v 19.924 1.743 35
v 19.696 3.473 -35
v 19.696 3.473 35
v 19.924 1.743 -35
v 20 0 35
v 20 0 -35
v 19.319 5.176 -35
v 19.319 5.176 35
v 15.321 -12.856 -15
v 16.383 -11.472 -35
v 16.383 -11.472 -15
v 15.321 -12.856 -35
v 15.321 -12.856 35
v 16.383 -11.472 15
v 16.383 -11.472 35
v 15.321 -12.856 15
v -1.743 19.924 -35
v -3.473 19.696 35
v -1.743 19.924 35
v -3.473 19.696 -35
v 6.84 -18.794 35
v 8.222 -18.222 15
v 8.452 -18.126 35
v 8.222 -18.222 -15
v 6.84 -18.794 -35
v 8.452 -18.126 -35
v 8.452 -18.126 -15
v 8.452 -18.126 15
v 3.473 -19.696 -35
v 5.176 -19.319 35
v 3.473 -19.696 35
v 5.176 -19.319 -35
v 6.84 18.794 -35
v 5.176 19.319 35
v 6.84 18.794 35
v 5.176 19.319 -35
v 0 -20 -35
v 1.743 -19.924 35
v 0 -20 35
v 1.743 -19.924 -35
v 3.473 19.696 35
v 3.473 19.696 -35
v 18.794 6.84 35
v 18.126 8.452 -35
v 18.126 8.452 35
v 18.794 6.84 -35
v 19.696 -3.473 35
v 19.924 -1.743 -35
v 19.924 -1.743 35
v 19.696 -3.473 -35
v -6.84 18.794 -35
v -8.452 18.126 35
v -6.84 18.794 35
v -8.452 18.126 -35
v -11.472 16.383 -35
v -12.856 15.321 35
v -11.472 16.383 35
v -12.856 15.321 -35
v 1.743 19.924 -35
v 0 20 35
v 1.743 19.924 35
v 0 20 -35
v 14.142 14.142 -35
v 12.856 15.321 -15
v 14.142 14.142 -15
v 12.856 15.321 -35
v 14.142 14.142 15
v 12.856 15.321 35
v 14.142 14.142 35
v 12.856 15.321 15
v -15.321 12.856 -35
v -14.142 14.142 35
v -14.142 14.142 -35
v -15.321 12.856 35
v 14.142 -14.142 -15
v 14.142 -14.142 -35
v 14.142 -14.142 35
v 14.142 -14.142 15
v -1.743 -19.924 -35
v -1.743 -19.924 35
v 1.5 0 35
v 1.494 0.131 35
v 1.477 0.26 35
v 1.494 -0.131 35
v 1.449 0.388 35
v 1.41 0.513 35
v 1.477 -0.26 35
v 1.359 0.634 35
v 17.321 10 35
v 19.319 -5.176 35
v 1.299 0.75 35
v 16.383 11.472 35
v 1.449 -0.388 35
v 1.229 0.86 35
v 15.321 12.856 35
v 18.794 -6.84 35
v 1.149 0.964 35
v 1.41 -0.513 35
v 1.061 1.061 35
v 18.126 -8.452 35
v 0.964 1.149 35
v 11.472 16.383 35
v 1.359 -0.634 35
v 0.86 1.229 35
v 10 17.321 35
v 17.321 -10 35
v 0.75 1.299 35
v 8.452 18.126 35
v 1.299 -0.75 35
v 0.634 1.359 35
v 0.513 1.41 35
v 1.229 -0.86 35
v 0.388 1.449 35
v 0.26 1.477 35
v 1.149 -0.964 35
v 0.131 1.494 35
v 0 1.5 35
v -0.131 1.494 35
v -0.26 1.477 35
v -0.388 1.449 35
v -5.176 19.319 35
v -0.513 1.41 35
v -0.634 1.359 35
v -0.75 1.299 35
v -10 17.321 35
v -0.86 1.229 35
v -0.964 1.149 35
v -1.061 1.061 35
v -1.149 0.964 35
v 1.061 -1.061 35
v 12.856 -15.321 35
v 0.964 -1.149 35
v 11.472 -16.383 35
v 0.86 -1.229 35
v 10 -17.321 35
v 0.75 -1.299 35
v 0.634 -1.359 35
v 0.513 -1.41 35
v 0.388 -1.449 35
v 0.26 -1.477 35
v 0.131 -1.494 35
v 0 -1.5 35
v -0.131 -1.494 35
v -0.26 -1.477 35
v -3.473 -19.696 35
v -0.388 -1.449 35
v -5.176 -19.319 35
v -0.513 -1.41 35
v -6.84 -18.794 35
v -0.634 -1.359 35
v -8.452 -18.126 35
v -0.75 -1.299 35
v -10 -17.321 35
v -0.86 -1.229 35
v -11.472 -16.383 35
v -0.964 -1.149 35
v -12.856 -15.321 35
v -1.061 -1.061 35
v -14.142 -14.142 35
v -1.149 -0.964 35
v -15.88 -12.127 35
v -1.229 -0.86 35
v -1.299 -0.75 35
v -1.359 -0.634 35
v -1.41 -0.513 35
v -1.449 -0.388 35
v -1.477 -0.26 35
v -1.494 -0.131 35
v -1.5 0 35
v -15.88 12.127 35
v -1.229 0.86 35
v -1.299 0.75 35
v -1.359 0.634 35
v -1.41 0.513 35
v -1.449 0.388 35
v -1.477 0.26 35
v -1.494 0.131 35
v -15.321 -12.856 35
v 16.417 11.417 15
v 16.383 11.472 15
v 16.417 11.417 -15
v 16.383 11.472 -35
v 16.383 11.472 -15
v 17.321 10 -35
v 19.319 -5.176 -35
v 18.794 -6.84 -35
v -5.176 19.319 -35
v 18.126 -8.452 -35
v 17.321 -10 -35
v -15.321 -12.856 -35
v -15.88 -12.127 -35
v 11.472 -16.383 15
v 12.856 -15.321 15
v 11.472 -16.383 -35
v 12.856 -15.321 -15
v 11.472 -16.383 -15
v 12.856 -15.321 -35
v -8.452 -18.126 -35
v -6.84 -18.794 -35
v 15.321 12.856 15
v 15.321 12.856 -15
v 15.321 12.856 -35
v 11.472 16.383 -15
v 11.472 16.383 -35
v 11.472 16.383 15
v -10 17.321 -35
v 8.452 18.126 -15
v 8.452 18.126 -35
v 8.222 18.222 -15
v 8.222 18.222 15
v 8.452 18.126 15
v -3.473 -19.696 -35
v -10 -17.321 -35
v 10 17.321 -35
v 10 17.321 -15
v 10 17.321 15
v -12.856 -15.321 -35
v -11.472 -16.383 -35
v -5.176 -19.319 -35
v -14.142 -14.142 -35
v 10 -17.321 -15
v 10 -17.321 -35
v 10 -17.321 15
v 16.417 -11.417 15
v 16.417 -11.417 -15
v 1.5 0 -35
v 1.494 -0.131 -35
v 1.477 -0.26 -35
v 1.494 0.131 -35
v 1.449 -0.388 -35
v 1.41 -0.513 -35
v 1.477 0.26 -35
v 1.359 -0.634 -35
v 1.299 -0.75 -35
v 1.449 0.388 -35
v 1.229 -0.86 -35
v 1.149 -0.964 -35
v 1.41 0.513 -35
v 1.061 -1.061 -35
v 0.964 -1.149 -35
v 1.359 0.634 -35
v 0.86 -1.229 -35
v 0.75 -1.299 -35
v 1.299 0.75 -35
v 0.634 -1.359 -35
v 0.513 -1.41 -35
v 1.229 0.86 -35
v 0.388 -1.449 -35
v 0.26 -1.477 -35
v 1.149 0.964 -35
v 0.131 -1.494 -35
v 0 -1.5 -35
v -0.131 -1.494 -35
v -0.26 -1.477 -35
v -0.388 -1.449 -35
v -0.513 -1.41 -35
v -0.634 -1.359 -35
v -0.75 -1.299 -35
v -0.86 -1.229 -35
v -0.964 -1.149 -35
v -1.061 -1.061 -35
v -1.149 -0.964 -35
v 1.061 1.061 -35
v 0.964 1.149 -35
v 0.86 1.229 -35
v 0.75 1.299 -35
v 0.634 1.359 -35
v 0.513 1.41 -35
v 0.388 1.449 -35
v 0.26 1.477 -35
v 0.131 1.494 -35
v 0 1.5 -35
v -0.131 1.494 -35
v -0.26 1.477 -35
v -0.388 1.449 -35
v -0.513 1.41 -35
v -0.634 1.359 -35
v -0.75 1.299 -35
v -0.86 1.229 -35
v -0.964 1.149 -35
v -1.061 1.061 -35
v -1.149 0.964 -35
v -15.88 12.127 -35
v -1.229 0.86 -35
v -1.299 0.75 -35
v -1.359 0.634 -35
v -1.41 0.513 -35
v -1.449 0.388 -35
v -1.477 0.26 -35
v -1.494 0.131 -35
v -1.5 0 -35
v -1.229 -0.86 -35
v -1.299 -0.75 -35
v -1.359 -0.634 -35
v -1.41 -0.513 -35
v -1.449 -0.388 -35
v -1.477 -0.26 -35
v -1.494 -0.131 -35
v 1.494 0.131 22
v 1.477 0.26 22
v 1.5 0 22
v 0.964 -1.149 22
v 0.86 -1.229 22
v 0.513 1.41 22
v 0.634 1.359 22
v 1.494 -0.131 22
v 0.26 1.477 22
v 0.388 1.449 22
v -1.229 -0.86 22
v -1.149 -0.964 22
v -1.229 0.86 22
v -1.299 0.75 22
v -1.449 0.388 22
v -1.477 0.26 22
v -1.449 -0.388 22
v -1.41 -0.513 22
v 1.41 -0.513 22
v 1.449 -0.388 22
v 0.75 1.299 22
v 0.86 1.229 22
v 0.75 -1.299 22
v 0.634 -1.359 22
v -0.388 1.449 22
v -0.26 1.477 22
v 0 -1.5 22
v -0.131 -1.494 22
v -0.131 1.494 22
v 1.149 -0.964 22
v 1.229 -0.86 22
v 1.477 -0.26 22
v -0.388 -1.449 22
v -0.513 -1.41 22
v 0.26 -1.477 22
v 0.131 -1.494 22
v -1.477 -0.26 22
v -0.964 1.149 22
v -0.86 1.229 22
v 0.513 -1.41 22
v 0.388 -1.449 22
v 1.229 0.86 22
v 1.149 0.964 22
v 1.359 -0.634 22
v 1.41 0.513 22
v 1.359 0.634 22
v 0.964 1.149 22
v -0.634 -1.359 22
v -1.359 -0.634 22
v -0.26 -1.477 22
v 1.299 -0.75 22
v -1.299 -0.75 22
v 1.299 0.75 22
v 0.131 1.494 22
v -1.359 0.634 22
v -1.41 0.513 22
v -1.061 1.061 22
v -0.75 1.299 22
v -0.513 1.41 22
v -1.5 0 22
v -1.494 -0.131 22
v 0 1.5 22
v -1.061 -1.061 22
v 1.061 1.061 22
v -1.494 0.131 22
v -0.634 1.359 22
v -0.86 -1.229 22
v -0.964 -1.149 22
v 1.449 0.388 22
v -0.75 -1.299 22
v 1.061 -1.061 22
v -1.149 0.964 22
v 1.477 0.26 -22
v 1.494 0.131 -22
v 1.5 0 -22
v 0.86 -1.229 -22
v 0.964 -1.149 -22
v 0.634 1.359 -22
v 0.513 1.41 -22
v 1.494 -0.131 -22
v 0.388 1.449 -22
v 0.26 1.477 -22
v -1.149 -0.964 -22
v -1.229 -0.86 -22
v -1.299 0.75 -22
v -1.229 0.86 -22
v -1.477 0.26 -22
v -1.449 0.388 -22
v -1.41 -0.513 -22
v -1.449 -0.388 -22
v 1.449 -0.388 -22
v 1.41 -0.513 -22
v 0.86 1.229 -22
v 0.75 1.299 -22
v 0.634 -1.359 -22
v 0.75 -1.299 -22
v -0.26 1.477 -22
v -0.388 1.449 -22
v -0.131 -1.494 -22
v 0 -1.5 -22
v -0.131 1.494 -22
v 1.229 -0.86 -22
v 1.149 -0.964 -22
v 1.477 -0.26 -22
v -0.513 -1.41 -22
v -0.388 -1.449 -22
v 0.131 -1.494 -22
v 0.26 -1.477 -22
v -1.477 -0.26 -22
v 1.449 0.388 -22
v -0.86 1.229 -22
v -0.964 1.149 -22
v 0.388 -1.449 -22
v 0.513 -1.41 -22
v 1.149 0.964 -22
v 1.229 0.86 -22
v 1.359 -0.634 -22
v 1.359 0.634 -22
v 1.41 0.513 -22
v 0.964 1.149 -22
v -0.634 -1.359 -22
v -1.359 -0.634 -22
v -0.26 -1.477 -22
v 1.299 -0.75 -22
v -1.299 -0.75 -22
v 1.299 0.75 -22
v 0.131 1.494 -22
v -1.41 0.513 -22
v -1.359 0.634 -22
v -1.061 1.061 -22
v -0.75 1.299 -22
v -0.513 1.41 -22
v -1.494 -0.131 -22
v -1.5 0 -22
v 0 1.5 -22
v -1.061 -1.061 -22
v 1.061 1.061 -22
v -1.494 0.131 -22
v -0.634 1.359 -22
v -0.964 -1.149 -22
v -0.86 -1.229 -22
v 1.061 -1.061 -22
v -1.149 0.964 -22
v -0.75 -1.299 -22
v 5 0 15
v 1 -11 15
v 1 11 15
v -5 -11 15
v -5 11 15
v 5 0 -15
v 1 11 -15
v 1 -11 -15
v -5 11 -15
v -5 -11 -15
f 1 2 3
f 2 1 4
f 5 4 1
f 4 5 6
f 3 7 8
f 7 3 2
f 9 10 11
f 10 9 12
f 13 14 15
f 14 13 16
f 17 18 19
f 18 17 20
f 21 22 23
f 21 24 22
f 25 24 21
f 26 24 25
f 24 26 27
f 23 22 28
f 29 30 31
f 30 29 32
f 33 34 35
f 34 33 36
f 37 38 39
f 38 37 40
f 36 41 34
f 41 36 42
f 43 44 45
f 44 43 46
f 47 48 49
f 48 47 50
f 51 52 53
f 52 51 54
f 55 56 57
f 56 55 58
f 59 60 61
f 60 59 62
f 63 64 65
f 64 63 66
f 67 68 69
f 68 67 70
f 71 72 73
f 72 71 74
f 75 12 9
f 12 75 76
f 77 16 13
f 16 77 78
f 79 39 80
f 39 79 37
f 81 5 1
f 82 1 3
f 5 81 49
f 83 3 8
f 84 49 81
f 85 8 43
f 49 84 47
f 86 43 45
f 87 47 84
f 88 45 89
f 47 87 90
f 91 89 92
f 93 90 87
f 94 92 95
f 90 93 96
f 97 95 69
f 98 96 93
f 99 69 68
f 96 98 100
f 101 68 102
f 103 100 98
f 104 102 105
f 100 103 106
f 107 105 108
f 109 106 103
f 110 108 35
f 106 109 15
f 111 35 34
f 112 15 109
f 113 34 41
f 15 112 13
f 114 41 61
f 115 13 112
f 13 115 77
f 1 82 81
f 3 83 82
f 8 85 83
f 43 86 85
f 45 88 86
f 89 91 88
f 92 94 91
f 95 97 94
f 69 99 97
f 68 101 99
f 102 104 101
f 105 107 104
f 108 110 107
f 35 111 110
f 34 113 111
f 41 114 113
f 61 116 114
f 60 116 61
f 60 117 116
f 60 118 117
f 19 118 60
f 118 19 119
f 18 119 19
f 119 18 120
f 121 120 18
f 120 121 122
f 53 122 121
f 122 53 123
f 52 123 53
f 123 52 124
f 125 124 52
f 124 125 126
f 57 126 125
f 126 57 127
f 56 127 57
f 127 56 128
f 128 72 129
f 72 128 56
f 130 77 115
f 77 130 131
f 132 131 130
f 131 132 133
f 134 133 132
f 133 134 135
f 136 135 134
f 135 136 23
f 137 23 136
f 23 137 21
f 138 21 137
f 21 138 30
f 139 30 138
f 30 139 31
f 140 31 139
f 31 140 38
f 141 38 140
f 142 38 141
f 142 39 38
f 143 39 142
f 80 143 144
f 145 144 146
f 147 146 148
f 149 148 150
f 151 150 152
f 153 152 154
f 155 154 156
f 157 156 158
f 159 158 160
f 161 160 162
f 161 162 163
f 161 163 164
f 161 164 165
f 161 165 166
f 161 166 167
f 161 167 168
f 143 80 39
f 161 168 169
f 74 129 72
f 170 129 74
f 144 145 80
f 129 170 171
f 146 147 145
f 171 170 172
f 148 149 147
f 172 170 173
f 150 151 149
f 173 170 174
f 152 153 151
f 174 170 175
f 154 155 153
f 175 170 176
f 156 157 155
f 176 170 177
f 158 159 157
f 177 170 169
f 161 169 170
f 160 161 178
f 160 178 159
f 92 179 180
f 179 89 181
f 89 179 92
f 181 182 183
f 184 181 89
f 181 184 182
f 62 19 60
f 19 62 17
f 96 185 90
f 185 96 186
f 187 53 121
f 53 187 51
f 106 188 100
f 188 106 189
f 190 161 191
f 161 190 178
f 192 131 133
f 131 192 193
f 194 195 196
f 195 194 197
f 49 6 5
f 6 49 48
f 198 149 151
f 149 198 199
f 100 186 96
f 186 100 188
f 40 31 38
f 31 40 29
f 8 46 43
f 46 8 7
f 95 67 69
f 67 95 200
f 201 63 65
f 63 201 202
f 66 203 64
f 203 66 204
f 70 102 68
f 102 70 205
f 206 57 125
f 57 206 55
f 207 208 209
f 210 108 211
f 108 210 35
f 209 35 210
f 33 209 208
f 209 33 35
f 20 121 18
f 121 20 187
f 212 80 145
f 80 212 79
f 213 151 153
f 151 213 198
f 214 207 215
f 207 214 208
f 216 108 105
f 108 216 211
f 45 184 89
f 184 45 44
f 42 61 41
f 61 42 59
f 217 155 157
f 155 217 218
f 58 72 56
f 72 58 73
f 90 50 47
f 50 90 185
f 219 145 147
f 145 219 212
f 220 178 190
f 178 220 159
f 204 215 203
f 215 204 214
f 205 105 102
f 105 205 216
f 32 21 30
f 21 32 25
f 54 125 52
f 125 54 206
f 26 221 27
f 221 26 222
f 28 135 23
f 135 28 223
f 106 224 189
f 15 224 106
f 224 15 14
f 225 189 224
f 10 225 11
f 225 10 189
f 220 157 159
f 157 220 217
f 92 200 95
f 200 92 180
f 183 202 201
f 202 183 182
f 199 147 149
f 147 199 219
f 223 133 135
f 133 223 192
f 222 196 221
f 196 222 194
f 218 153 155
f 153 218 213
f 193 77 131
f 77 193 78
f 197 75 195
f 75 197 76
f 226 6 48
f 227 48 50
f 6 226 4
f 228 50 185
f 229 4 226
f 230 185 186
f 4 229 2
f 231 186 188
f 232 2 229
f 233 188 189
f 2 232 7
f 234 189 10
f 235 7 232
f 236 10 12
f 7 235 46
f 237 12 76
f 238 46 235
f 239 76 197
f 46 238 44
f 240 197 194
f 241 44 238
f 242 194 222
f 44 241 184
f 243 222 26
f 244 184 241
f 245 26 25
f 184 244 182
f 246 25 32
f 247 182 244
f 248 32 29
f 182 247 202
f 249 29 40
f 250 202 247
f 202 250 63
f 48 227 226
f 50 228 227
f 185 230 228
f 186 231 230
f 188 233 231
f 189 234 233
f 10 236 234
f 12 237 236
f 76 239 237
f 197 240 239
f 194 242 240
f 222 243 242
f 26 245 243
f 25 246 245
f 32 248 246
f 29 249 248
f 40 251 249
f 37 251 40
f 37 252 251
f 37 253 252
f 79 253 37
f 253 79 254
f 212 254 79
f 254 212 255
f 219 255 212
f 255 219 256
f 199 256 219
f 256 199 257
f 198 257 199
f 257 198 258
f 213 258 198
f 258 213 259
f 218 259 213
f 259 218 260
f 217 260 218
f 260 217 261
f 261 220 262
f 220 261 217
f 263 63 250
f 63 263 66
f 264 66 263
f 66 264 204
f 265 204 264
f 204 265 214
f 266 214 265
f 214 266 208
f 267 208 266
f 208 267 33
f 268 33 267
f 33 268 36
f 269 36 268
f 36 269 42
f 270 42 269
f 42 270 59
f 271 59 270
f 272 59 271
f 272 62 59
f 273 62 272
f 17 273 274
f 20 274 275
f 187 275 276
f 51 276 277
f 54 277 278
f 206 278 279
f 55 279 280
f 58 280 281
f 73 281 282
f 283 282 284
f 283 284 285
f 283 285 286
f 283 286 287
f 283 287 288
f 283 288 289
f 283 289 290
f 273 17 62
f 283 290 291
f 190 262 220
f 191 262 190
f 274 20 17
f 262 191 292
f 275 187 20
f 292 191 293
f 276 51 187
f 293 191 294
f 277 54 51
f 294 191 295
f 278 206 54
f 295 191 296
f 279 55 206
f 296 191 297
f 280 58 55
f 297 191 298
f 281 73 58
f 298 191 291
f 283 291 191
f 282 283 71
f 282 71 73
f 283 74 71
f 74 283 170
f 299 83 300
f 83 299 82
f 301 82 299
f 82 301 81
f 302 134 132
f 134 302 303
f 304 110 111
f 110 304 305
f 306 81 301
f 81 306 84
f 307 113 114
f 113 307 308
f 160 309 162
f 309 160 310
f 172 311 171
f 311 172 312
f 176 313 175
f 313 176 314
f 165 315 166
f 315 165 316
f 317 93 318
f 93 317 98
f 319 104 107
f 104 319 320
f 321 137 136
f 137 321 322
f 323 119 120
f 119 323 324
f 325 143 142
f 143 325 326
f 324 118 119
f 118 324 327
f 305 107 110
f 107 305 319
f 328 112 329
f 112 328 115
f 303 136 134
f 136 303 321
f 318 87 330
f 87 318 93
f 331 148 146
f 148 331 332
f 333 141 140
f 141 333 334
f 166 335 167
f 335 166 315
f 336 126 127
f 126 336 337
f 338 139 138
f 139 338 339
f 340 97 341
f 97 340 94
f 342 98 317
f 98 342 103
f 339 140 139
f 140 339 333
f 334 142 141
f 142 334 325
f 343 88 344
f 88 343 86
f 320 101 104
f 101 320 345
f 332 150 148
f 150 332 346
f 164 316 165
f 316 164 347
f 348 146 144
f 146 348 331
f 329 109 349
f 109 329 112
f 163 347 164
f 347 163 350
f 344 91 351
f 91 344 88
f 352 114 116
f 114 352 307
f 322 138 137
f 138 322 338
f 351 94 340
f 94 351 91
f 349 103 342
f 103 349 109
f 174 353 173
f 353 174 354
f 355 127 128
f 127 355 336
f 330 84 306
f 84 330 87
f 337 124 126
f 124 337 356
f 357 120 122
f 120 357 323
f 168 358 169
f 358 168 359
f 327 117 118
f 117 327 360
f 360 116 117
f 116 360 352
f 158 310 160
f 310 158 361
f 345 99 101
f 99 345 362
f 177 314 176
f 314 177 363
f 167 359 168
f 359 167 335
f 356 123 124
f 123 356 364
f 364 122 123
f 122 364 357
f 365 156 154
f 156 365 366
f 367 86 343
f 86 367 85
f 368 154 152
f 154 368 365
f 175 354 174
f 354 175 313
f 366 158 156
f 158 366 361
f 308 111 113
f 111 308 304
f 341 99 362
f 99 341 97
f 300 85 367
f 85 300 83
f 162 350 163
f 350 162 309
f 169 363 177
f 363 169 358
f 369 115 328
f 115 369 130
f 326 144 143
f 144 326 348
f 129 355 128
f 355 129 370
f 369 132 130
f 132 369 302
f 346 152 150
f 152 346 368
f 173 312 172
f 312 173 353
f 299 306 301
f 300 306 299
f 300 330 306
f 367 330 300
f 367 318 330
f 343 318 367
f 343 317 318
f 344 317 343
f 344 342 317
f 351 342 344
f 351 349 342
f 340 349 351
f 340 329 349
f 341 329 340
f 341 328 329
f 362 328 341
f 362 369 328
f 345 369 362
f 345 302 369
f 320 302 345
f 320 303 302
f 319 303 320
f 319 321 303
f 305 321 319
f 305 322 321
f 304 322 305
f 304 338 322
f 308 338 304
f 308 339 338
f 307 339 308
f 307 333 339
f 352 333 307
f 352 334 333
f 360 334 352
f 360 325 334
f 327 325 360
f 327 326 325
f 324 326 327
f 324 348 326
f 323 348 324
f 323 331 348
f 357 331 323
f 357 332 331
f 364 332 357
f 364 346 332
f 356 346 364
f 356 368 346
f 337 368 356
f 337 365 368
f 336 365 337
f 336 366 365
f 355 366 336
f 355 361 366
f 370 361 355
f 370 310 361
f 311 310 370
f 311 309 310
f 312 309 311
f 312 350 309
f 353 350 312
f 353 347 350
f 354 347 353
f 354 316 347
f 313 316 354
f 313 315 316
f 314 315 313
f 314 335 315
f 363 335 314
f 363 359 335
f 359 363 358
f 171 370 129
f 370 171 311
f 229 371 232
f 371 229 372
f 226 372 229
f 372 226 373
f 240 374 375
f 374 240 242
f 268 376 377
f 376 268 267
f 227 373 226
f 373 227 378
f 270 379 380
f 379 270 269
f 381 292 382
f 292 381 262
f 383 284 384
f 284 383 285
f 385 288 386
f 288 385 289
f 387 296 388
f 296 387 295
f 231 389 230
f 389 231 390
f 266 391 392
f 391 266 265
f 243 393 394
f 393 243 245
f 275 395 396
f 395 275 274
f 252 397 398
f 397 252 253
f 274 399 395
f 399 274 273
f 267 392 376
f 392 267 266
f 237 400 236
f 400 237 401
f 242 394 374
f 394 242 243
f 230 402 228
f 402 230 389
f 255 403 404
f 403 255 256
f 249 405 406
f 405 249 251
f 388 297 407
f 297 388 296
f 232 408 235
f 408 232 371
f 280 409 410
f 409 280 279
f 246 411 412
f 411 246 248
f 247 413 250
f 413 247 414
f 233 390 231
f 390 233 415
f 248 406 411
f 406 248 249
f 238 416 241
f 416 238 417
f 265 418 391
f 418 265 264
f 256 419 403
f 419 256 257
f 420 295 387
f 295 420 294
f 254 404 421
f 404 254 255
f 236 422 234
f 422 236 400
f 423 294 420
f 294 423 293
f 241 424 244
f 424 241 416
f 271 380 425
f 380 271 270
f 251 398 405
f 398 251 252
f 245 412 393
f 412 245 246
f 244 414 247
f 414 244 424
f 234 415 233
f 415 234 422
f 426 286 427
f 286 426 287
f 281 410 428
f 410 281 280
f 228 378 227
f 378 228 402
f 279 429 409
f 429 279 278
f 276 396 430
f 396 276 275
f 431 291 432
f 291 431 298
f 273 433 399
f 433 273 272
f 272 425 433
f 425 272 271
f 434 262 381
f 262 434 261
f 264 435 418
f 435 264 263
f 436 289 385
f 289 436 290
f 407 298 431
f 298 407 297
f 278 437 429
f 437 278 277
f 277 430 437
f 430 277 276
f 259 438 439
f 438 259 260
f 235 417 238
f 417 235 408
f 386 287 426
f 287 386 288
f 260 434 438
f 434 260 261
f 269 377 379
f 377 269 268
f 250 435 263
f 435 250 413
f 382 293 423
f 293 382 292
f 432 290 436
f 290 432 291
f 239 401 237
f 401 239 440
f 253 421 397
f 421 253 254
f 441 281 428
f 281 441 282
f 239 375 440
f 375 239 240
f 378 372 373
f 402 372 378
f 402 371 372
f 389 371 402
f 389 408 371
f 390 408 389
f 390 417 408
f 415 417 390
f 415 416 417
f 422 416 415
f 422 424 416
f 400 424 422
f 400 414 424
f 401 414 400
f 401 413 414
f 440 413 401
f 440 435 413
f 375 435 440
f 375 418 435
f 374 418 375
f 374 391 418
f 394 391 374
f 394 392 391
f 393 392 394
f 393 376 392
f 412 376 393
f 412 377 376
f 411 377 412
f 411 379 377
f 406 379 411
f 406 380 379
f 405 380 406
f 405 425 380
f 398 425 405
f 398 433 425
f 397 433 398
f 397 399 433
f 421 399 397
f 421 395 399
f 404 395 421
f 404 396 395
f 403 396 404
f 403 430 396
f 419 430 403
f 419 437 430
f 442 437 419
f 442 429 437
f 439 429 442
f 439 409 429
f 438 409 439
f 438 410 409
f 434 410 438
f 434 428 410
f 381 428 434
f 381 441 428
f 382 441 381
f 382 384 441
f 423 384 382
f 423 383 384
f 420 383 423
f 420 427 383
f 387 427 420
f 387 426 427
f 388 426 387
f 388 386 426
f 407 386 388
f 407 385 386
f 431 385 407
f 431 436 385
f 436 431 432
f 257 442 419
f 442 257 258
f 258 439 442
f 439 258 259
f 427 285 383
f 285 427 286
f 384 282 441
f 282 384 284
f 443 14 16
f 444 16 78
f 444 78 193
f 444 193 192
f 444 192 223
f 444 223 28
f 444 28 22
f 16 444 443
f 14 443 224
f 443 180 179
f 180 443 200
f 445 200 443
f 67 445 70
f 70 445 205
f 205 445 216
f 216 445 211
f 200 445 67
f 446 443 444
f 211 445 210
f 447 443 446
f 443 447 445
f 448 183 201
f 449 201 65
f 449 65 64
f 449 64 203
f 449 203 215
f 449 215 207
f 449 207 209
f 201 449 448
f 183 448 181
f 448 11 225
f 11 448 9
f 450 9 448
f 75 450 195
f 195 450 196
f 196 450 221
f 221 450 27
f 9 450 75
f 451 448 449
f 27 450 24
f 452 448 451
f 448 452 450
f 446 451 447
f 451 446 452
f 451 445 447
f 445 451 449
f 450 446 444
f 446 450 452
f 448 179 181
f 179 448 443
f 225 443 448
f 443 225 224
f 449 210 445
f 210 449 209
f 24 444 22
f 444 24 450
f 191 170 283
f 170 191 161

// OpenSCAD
/*
    Mirror holder
*/

$fn = 72;

echo("==========");

//
// Helpers
//

function r2d(r) = r * 180 / 3.14159;
function d2r(d) = d * 3.14159 / 180;

pi_deg = acos(-1);
echo("pi_deg", pi_deg);

delta = 99;

//
// Constants
//

d_main = 40; // arbitrary
r_main = d_main / 2;

mirror_L = 10; // space
mirror_D = 22; // spec
mirror_H = 30; // spec

d_hole = 3; // spec
h_hole = 12.5; // spec
h_hole_margin = 2.5 + 5;

h_main = mirror_H + 2 * (h_hole + h_hole_margin);
echo("h_main", h_main);

laser_W = sqrt(5*5 + 5*5);
laser_L = delta;
laser_offset = 5;

rear_cap_h = 4.12; // manual optim COG
rear_W = d_main;
rear_H = h_main + delta;

// rear_cap_h 4.15 = COG base estimated 1.01, reality 1.03
// => better rear_cap_h 4.12 (-0.006)

//
// Main cylinder
//

difference() {
    cylinder(h = h_main, d = d_main, center = true);

    // Motor holes
    m_h = mirror_H/2 + h_hole_margin + h_hole/2;
    translate([0, 0, m_h]) cylinder(h = h_hole+1, d = d_hole, center = true);
    translate([0, 0, -m_h]) cylinder(h = h_hole+1, d = d_hole, center = true);

    // Mirror
    cube([mirror_L, mirror_D, mirror_H], center = true);

    // Laser path - center
    rotate([0, 0, 45]) translate([0, -laser_W/2, -mirror_H/2]) cube([laser_L, laser_W, mirror_H]);
    rotate([0, 0, -45]) translate([0, -laser_W/2, -mirror_H/2]) cube([laser_L, laser_W, mirror_H]);

    // Laser path - offset
    translate([0, laser_offset, 0])
        rotate([0, 0, 45]) translate([0, -laser_W/2, -mirror_H/2]) cube([laser_L, laser_W, mirror_H]);
    translate([0, -laser_offset, 0])
        rotate([0, 0, -45]) translate([0, -laser_W/2, -mirror_H/2]) cube([laser_L, laser_W, mirror_H]);

    // Rear balancing
    translate([-rear_W-r_main+rear_cap_h, -rear_W/2, -rear_H/2]) cube([rear_W, rear_W, rear_H]);

    // DEBUG: cut in half
    // translate([-50, -50, 0])
    //    cube([100, 100, 100]);
}

//
// Check COG
//

// cog_mirror
cog_mirror = -1.36;

// cog_base
theta_deg = 2*acos((r_main -rear_cap_h)/r_main );
// The centroid x of the remaining shape (signed toward the side opposite the removed cap)
cog_base = 2 * r_main * sin(theta_deg / 2)^3 / (3 * (3.14159 - 0.5*(d2r(theta_deg)-sin(theta_deg))));
echo("cog_base", cog_base);

// cog_base = 1.03;

// result
cog_global = (2 * (h_hole + h_hole_margin) * cog_base + mirror_H * cog_mirror) / h_main;

echo("Estimated COG:", cog_global);

echo("==========");
